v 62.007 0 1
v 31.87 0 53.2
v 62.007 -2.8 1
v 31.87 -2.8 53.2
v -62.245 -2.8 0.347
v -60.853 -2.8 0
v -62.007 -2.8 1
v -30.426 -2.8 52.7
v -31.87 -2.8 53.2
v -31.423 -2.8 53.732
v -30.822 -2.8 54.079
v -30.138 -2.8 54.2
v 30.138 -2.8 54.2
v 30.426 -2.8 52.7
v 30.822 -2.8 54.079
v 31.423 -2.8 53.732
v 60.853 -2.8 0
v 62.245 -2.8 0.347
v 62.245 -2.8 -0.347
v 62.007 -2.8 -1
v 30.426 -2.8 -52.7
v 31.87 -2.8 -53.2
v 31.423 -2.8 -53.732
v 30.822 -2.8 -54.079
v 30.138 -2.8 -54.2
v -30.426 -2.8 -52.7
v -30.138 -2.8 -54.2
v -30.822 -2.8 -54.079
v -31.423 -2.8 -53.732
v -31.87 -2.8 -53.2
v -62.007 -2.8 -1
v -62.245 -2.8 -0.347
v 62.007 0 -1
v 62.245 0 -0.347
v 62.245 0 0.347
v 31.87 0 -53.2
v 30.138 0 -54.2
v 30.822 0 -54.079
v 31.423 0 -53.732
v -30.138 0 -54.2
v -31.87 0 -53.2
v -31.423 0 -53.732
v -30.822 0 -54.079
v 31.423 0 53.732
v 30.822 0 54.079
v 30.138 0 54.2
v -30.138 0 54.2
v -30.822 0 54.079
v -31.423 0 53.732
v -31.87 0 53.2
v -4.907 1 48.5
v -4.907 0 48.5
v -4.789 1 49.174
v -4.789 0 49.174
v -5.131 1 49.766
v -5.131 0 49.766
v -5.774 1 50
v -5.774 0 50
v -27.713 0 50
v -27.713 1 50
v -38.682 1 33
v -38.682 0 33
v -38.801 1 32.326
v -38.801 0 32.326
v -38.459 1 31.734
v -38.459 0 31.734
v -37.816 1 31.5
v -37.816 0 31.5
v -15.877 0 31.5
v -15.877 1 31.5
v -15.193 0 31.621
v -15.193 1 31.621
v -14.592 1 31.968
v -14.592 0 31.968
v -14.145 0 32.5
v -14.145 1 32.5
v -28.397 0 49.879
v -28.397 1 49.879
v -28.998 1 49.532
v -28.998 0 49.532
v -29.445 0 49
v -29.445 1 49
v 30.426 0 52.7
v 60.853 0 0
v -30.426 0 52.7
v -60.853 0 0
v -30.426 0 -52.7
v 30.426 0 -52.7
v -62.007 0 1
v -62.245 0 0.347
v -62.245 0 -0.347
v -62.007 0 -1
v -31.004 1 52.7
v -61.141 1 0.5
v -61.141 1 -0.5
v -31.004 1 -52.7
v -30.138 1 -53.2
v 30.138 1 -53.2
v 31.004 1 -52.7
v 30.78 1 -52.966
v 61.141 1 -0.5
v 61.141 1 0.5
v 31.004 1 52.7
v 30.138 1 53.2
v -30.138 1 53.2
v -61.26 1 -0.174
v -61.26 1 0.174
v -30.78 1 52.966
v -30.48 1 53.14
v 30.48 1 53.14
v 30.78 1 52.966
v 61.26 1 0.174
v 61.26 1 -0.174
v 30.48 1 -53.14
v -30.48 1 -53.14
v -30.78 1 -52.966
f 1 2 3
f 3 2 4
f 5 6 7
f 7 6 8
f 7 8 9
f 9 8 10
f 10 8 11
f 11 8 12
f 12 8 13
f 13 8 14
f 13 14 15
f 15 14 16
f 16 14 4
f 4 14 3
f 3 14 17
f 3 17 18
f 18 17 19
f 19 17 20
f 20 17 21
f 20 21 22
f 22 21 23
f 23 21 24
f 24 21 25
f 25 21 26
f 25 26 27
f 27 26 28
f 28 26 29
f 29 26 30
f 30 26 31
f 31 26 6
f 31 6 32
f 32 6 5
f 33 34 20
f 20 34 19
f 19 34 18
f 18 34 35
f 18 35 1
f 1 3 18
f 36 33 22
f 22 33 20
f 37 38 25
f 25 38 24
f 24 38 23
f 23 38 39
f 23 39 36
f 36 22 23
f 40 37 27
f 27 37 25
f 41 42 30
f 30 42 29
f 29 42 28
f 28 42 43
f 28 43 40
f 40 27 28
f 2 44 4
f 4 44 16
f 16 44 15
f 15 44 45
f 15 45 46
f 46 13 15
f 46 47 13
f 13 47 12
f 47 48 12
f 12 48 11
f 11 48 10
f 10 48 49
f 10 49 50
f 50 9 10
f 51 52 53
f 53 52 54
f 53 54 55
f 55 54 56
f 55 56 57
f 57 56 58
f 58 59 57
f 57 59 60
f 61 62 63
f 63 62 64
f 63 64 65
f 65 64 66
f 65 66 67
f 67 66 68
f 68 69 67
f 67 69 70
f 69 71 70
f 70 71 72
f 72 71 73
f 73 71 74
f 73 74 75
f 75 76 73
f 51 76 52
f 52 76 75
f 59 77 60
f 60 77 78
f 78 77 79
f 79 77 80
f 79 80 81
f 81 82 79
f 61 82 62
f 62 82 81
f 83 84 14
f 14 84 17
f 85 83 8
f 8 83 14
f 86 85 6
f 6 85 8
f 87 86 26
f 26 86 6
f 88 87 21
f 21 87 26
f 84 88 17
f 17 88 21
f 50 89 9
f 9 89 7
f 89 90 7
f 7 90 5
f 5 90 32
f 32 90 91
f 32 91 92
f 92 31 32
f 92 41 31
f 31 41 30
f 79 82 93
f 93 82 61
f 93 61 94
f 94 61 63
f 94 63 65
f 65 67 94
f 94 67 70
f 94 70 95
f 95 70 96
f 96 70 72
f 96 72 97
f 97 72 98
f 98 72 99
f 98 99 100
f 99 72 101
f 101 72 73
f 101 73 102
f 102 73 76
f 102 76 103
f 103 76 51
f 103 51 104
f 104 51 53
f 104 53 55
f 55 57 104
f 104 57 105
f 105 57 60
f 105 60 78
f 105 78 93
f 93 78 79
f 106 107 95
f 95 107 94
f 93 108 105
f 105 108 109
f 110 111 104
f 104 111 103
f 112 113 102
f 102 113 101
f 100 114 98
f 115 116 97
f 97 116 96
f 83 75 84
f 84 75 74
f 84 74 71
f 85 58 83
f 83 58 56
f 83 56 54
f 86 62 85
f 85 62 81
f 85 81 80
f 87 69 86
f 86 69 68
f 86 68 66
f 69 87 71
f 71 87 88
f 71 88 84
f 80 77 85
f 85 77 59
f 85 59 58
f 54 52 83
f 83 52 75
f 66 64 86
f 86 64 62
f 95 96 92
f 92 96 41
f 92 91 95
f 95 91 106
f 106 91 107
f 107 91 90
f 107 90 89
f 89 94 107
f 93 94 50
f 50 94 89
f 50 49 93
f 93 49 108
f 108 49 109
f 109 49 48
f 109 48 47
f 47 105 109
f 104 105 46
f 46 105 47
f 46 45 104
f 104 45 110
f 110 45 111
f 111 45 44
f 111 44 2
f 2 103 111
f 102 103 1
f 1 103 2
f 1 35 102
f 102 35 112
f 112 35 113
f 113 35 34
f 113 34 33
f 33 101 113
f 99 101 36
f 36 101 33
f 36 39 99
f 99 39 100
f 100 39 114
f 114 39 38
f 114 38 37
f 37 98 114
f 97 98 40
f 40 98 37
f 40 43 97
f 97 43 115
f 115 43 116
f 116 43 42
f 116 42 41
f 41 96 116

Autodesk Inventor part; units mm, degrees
ref_plane "YZ Plane" through (0, 0, 0) normal (1, 0, 0) x (0, 1, 0)
ref_plane "XZ Plane" through (0, 0, 0) normal (0, 1, 0) x (-1, 0, 0)
ref_plane "XY Plane" through (0, 0, 0) normal (0, 0, 1) x (1, 0, 0)
sketch "Sketch1" plane through (0, 0, 0) normal (0, 1, 0) x (-1, 0, 0)
  line L0 (-29.4449, -51) -> (-58.8897, 0)
  line L1 (-58.8897, 0) -> (-29.4449, 51)
  line L2 (-29.4449, 51) -> (29.4449, 51)
  line L3 (29.4449, 51) -> (58.8897, 0)
  line L4 (58.8897, 0) -> (29.4449, -51)
  line L5 (29.4449, -51) -> (-29.4449, -51)
  line L6 (-31.2924, -54.2) -> (-62.5848, 0)
  line L7 (-62.5848, 0) -> (-31.2924, 54.2)
  line L8 (-31.2924, 54.2) -> (31.2924, 54.2)
  line L9 (31.2924, 54.2) -> (62.5848, 0)
  line L10 (62.5848, 0) -> (31.2924, -54.2)
  line L11 (31.2924, -54.2) -> (-31.2924, -54.2)
  line L12 (-30.3109, -52.5) -> (-60.6218, 0)
  line L13 (-60.6218, 0) -> (-30.3109, 52.5)
  line L14 (-30.3109, 52.5) -> (30.3109, 52.5)
  line L15 (30.3109, 52.5) -> (60.6218, 0)
  line L16 (60.6218, 0) -> (30.3109, -52.5)
  line L17 (30.3109, -52.5) -> (-30.3109, -52.5)
  line L18 (-30.4264, -52.7) -> (-60.8527, 0)
  line L19 (-60.8527, 0) -> (-30.4264, 52.7)
  line L20 (-30.4264, 52.7) -> (30.4264, 52.7)
  line L21 (30.4264, 52.7) -> (60.8527, 0)
  line L22 (60.8527, 0) -> (30.4264, -52.7)
  line L23 (30.4264, -52.7) -> (-30.4264, -52.7)
  line L24 (0, -51) -> (0, -52.5) construction
  line L25 (0, -52.7) -> (0, -54.2) construction
  line L26 (28.8675, 50) -> (39.5485, 31.5)
  line L27 (39.5485, 31.5) -> (14.7224, 31.5)
  line L28 (14.7224, 31.5) -> (4.0415, 50)
  line L29 (4.0415, 50) -> (28.8675, 50)
  line L30 (-29.1562, 50.5) -> (29.1562, 50.5) construction
  line L31 (29.1562, 50.5) -> (58.3124, 0) construction
  line L32 (58.3124, 0) -> (29.1562, -50.5) construction
  line L33 (29.1562, -50.5) -> (-29.1562, -50.5) construction
  line L34 (-29.1562, -50.5) -> (-58.3124, 0) construction
  line L35 (-58.3124, 0) -> (-29.1562, 50.5) construction
  line L36 (40.2124, 30.35) -> (14.0007, 30.35) construction
  line L37 (14.0007, 30.35) -> (2.6558, 50) construction
  point P0 (0, 0)
  point P1 (0, 0)
  point P2 (0, 0)
  dimension "d0" = 102
  dimension "d1" = 3.2
  dimension "d2" = 0.2
  dimension "d3" = 1
  dimension "d4" = 1
  dimension "d5" = 101
  dimension "d6" = 19
  dimension "d7" = 21.5
  dimension "Outside" = 108.4
  dimension "d17" = 20.15
  dimension "d18" = 23.2
  dimension "d19" = 1.15
  dimension "d20" = 1.2
extrude "Extrusion1" add sketch "Sketch1" along normal blind 1 contours L0 L1 L2 L3 L4 L5 | L6 L7 L8 L9 L10 L11 | L12 L13 L14 L15 L16 L17 | L18 L19 L20 L21 L22 L23
extrude "Extrusion2" add sketch "Sketch1" against normal blind 2.8 contours L6 L7 L8 L9 L10 L11
fillet "Fillet1" radius 2 2 edges at (-28.8675, 0.5, 50) (-14.7224, 0.5, 31.5)
fillet "Fillet1" radius 1 2 edges at (-39.5485, 0.5, 31.5) (-4.0415, 0.5, 50)
fillet "Fillet1" radius 2 6 edges at (-31.2924, -0.9, 54.2) (31.2924, -0.9, 54.2) (62.5848, -0.9, 0) (31.2924, -0.9, -54.2) (-31.2924, -0.9, -54.2) (-62.5848, -0.9, 0)
chamfer "Chamfer1" distance 1 angle 45 12 edges at (-46.9386, 1, -27.1) (-62.2754, 1, 0) (-46.9386, 1, 27.1) (-31.1377, 1, 53.9321) (0, 1, 54.2) (31.1377, 1, 53.9321) (46.9386, 1, 27.1) (62.2754, 1, 0) (46.9386, 1, -27.1) (31.1377, 1, -53.9321) (0, 1, -54.2) (-31.1377, 1, -53.9321)
equation "\"d0\" = Inside"
equation "\"d4\" = d3"
equation "\"d5\" = FlatDiameter"
equation "\"d17\" = CouncilHomeHeight"
equation "\"d18\" = CouncilHomeWidth"
equation "\"d8\" = FaceThickness"
equation "\"d10\" = LidDepth - Clearance"
equation "\"Clearance\" = 0.2"
equation "\"LidDepth\" = 3"
equation "\"FaceThickness\" = 1"
equation "\"Inside\" = 102"
equation "\"FlatDiameter\" = 101"
equation "\"CouncilHomeHeight\" = 20.15"
equation "\"CouncilHomeWidth\" = 23.2"
properties part number "Factions_Lid" material "ABS Plastic"
